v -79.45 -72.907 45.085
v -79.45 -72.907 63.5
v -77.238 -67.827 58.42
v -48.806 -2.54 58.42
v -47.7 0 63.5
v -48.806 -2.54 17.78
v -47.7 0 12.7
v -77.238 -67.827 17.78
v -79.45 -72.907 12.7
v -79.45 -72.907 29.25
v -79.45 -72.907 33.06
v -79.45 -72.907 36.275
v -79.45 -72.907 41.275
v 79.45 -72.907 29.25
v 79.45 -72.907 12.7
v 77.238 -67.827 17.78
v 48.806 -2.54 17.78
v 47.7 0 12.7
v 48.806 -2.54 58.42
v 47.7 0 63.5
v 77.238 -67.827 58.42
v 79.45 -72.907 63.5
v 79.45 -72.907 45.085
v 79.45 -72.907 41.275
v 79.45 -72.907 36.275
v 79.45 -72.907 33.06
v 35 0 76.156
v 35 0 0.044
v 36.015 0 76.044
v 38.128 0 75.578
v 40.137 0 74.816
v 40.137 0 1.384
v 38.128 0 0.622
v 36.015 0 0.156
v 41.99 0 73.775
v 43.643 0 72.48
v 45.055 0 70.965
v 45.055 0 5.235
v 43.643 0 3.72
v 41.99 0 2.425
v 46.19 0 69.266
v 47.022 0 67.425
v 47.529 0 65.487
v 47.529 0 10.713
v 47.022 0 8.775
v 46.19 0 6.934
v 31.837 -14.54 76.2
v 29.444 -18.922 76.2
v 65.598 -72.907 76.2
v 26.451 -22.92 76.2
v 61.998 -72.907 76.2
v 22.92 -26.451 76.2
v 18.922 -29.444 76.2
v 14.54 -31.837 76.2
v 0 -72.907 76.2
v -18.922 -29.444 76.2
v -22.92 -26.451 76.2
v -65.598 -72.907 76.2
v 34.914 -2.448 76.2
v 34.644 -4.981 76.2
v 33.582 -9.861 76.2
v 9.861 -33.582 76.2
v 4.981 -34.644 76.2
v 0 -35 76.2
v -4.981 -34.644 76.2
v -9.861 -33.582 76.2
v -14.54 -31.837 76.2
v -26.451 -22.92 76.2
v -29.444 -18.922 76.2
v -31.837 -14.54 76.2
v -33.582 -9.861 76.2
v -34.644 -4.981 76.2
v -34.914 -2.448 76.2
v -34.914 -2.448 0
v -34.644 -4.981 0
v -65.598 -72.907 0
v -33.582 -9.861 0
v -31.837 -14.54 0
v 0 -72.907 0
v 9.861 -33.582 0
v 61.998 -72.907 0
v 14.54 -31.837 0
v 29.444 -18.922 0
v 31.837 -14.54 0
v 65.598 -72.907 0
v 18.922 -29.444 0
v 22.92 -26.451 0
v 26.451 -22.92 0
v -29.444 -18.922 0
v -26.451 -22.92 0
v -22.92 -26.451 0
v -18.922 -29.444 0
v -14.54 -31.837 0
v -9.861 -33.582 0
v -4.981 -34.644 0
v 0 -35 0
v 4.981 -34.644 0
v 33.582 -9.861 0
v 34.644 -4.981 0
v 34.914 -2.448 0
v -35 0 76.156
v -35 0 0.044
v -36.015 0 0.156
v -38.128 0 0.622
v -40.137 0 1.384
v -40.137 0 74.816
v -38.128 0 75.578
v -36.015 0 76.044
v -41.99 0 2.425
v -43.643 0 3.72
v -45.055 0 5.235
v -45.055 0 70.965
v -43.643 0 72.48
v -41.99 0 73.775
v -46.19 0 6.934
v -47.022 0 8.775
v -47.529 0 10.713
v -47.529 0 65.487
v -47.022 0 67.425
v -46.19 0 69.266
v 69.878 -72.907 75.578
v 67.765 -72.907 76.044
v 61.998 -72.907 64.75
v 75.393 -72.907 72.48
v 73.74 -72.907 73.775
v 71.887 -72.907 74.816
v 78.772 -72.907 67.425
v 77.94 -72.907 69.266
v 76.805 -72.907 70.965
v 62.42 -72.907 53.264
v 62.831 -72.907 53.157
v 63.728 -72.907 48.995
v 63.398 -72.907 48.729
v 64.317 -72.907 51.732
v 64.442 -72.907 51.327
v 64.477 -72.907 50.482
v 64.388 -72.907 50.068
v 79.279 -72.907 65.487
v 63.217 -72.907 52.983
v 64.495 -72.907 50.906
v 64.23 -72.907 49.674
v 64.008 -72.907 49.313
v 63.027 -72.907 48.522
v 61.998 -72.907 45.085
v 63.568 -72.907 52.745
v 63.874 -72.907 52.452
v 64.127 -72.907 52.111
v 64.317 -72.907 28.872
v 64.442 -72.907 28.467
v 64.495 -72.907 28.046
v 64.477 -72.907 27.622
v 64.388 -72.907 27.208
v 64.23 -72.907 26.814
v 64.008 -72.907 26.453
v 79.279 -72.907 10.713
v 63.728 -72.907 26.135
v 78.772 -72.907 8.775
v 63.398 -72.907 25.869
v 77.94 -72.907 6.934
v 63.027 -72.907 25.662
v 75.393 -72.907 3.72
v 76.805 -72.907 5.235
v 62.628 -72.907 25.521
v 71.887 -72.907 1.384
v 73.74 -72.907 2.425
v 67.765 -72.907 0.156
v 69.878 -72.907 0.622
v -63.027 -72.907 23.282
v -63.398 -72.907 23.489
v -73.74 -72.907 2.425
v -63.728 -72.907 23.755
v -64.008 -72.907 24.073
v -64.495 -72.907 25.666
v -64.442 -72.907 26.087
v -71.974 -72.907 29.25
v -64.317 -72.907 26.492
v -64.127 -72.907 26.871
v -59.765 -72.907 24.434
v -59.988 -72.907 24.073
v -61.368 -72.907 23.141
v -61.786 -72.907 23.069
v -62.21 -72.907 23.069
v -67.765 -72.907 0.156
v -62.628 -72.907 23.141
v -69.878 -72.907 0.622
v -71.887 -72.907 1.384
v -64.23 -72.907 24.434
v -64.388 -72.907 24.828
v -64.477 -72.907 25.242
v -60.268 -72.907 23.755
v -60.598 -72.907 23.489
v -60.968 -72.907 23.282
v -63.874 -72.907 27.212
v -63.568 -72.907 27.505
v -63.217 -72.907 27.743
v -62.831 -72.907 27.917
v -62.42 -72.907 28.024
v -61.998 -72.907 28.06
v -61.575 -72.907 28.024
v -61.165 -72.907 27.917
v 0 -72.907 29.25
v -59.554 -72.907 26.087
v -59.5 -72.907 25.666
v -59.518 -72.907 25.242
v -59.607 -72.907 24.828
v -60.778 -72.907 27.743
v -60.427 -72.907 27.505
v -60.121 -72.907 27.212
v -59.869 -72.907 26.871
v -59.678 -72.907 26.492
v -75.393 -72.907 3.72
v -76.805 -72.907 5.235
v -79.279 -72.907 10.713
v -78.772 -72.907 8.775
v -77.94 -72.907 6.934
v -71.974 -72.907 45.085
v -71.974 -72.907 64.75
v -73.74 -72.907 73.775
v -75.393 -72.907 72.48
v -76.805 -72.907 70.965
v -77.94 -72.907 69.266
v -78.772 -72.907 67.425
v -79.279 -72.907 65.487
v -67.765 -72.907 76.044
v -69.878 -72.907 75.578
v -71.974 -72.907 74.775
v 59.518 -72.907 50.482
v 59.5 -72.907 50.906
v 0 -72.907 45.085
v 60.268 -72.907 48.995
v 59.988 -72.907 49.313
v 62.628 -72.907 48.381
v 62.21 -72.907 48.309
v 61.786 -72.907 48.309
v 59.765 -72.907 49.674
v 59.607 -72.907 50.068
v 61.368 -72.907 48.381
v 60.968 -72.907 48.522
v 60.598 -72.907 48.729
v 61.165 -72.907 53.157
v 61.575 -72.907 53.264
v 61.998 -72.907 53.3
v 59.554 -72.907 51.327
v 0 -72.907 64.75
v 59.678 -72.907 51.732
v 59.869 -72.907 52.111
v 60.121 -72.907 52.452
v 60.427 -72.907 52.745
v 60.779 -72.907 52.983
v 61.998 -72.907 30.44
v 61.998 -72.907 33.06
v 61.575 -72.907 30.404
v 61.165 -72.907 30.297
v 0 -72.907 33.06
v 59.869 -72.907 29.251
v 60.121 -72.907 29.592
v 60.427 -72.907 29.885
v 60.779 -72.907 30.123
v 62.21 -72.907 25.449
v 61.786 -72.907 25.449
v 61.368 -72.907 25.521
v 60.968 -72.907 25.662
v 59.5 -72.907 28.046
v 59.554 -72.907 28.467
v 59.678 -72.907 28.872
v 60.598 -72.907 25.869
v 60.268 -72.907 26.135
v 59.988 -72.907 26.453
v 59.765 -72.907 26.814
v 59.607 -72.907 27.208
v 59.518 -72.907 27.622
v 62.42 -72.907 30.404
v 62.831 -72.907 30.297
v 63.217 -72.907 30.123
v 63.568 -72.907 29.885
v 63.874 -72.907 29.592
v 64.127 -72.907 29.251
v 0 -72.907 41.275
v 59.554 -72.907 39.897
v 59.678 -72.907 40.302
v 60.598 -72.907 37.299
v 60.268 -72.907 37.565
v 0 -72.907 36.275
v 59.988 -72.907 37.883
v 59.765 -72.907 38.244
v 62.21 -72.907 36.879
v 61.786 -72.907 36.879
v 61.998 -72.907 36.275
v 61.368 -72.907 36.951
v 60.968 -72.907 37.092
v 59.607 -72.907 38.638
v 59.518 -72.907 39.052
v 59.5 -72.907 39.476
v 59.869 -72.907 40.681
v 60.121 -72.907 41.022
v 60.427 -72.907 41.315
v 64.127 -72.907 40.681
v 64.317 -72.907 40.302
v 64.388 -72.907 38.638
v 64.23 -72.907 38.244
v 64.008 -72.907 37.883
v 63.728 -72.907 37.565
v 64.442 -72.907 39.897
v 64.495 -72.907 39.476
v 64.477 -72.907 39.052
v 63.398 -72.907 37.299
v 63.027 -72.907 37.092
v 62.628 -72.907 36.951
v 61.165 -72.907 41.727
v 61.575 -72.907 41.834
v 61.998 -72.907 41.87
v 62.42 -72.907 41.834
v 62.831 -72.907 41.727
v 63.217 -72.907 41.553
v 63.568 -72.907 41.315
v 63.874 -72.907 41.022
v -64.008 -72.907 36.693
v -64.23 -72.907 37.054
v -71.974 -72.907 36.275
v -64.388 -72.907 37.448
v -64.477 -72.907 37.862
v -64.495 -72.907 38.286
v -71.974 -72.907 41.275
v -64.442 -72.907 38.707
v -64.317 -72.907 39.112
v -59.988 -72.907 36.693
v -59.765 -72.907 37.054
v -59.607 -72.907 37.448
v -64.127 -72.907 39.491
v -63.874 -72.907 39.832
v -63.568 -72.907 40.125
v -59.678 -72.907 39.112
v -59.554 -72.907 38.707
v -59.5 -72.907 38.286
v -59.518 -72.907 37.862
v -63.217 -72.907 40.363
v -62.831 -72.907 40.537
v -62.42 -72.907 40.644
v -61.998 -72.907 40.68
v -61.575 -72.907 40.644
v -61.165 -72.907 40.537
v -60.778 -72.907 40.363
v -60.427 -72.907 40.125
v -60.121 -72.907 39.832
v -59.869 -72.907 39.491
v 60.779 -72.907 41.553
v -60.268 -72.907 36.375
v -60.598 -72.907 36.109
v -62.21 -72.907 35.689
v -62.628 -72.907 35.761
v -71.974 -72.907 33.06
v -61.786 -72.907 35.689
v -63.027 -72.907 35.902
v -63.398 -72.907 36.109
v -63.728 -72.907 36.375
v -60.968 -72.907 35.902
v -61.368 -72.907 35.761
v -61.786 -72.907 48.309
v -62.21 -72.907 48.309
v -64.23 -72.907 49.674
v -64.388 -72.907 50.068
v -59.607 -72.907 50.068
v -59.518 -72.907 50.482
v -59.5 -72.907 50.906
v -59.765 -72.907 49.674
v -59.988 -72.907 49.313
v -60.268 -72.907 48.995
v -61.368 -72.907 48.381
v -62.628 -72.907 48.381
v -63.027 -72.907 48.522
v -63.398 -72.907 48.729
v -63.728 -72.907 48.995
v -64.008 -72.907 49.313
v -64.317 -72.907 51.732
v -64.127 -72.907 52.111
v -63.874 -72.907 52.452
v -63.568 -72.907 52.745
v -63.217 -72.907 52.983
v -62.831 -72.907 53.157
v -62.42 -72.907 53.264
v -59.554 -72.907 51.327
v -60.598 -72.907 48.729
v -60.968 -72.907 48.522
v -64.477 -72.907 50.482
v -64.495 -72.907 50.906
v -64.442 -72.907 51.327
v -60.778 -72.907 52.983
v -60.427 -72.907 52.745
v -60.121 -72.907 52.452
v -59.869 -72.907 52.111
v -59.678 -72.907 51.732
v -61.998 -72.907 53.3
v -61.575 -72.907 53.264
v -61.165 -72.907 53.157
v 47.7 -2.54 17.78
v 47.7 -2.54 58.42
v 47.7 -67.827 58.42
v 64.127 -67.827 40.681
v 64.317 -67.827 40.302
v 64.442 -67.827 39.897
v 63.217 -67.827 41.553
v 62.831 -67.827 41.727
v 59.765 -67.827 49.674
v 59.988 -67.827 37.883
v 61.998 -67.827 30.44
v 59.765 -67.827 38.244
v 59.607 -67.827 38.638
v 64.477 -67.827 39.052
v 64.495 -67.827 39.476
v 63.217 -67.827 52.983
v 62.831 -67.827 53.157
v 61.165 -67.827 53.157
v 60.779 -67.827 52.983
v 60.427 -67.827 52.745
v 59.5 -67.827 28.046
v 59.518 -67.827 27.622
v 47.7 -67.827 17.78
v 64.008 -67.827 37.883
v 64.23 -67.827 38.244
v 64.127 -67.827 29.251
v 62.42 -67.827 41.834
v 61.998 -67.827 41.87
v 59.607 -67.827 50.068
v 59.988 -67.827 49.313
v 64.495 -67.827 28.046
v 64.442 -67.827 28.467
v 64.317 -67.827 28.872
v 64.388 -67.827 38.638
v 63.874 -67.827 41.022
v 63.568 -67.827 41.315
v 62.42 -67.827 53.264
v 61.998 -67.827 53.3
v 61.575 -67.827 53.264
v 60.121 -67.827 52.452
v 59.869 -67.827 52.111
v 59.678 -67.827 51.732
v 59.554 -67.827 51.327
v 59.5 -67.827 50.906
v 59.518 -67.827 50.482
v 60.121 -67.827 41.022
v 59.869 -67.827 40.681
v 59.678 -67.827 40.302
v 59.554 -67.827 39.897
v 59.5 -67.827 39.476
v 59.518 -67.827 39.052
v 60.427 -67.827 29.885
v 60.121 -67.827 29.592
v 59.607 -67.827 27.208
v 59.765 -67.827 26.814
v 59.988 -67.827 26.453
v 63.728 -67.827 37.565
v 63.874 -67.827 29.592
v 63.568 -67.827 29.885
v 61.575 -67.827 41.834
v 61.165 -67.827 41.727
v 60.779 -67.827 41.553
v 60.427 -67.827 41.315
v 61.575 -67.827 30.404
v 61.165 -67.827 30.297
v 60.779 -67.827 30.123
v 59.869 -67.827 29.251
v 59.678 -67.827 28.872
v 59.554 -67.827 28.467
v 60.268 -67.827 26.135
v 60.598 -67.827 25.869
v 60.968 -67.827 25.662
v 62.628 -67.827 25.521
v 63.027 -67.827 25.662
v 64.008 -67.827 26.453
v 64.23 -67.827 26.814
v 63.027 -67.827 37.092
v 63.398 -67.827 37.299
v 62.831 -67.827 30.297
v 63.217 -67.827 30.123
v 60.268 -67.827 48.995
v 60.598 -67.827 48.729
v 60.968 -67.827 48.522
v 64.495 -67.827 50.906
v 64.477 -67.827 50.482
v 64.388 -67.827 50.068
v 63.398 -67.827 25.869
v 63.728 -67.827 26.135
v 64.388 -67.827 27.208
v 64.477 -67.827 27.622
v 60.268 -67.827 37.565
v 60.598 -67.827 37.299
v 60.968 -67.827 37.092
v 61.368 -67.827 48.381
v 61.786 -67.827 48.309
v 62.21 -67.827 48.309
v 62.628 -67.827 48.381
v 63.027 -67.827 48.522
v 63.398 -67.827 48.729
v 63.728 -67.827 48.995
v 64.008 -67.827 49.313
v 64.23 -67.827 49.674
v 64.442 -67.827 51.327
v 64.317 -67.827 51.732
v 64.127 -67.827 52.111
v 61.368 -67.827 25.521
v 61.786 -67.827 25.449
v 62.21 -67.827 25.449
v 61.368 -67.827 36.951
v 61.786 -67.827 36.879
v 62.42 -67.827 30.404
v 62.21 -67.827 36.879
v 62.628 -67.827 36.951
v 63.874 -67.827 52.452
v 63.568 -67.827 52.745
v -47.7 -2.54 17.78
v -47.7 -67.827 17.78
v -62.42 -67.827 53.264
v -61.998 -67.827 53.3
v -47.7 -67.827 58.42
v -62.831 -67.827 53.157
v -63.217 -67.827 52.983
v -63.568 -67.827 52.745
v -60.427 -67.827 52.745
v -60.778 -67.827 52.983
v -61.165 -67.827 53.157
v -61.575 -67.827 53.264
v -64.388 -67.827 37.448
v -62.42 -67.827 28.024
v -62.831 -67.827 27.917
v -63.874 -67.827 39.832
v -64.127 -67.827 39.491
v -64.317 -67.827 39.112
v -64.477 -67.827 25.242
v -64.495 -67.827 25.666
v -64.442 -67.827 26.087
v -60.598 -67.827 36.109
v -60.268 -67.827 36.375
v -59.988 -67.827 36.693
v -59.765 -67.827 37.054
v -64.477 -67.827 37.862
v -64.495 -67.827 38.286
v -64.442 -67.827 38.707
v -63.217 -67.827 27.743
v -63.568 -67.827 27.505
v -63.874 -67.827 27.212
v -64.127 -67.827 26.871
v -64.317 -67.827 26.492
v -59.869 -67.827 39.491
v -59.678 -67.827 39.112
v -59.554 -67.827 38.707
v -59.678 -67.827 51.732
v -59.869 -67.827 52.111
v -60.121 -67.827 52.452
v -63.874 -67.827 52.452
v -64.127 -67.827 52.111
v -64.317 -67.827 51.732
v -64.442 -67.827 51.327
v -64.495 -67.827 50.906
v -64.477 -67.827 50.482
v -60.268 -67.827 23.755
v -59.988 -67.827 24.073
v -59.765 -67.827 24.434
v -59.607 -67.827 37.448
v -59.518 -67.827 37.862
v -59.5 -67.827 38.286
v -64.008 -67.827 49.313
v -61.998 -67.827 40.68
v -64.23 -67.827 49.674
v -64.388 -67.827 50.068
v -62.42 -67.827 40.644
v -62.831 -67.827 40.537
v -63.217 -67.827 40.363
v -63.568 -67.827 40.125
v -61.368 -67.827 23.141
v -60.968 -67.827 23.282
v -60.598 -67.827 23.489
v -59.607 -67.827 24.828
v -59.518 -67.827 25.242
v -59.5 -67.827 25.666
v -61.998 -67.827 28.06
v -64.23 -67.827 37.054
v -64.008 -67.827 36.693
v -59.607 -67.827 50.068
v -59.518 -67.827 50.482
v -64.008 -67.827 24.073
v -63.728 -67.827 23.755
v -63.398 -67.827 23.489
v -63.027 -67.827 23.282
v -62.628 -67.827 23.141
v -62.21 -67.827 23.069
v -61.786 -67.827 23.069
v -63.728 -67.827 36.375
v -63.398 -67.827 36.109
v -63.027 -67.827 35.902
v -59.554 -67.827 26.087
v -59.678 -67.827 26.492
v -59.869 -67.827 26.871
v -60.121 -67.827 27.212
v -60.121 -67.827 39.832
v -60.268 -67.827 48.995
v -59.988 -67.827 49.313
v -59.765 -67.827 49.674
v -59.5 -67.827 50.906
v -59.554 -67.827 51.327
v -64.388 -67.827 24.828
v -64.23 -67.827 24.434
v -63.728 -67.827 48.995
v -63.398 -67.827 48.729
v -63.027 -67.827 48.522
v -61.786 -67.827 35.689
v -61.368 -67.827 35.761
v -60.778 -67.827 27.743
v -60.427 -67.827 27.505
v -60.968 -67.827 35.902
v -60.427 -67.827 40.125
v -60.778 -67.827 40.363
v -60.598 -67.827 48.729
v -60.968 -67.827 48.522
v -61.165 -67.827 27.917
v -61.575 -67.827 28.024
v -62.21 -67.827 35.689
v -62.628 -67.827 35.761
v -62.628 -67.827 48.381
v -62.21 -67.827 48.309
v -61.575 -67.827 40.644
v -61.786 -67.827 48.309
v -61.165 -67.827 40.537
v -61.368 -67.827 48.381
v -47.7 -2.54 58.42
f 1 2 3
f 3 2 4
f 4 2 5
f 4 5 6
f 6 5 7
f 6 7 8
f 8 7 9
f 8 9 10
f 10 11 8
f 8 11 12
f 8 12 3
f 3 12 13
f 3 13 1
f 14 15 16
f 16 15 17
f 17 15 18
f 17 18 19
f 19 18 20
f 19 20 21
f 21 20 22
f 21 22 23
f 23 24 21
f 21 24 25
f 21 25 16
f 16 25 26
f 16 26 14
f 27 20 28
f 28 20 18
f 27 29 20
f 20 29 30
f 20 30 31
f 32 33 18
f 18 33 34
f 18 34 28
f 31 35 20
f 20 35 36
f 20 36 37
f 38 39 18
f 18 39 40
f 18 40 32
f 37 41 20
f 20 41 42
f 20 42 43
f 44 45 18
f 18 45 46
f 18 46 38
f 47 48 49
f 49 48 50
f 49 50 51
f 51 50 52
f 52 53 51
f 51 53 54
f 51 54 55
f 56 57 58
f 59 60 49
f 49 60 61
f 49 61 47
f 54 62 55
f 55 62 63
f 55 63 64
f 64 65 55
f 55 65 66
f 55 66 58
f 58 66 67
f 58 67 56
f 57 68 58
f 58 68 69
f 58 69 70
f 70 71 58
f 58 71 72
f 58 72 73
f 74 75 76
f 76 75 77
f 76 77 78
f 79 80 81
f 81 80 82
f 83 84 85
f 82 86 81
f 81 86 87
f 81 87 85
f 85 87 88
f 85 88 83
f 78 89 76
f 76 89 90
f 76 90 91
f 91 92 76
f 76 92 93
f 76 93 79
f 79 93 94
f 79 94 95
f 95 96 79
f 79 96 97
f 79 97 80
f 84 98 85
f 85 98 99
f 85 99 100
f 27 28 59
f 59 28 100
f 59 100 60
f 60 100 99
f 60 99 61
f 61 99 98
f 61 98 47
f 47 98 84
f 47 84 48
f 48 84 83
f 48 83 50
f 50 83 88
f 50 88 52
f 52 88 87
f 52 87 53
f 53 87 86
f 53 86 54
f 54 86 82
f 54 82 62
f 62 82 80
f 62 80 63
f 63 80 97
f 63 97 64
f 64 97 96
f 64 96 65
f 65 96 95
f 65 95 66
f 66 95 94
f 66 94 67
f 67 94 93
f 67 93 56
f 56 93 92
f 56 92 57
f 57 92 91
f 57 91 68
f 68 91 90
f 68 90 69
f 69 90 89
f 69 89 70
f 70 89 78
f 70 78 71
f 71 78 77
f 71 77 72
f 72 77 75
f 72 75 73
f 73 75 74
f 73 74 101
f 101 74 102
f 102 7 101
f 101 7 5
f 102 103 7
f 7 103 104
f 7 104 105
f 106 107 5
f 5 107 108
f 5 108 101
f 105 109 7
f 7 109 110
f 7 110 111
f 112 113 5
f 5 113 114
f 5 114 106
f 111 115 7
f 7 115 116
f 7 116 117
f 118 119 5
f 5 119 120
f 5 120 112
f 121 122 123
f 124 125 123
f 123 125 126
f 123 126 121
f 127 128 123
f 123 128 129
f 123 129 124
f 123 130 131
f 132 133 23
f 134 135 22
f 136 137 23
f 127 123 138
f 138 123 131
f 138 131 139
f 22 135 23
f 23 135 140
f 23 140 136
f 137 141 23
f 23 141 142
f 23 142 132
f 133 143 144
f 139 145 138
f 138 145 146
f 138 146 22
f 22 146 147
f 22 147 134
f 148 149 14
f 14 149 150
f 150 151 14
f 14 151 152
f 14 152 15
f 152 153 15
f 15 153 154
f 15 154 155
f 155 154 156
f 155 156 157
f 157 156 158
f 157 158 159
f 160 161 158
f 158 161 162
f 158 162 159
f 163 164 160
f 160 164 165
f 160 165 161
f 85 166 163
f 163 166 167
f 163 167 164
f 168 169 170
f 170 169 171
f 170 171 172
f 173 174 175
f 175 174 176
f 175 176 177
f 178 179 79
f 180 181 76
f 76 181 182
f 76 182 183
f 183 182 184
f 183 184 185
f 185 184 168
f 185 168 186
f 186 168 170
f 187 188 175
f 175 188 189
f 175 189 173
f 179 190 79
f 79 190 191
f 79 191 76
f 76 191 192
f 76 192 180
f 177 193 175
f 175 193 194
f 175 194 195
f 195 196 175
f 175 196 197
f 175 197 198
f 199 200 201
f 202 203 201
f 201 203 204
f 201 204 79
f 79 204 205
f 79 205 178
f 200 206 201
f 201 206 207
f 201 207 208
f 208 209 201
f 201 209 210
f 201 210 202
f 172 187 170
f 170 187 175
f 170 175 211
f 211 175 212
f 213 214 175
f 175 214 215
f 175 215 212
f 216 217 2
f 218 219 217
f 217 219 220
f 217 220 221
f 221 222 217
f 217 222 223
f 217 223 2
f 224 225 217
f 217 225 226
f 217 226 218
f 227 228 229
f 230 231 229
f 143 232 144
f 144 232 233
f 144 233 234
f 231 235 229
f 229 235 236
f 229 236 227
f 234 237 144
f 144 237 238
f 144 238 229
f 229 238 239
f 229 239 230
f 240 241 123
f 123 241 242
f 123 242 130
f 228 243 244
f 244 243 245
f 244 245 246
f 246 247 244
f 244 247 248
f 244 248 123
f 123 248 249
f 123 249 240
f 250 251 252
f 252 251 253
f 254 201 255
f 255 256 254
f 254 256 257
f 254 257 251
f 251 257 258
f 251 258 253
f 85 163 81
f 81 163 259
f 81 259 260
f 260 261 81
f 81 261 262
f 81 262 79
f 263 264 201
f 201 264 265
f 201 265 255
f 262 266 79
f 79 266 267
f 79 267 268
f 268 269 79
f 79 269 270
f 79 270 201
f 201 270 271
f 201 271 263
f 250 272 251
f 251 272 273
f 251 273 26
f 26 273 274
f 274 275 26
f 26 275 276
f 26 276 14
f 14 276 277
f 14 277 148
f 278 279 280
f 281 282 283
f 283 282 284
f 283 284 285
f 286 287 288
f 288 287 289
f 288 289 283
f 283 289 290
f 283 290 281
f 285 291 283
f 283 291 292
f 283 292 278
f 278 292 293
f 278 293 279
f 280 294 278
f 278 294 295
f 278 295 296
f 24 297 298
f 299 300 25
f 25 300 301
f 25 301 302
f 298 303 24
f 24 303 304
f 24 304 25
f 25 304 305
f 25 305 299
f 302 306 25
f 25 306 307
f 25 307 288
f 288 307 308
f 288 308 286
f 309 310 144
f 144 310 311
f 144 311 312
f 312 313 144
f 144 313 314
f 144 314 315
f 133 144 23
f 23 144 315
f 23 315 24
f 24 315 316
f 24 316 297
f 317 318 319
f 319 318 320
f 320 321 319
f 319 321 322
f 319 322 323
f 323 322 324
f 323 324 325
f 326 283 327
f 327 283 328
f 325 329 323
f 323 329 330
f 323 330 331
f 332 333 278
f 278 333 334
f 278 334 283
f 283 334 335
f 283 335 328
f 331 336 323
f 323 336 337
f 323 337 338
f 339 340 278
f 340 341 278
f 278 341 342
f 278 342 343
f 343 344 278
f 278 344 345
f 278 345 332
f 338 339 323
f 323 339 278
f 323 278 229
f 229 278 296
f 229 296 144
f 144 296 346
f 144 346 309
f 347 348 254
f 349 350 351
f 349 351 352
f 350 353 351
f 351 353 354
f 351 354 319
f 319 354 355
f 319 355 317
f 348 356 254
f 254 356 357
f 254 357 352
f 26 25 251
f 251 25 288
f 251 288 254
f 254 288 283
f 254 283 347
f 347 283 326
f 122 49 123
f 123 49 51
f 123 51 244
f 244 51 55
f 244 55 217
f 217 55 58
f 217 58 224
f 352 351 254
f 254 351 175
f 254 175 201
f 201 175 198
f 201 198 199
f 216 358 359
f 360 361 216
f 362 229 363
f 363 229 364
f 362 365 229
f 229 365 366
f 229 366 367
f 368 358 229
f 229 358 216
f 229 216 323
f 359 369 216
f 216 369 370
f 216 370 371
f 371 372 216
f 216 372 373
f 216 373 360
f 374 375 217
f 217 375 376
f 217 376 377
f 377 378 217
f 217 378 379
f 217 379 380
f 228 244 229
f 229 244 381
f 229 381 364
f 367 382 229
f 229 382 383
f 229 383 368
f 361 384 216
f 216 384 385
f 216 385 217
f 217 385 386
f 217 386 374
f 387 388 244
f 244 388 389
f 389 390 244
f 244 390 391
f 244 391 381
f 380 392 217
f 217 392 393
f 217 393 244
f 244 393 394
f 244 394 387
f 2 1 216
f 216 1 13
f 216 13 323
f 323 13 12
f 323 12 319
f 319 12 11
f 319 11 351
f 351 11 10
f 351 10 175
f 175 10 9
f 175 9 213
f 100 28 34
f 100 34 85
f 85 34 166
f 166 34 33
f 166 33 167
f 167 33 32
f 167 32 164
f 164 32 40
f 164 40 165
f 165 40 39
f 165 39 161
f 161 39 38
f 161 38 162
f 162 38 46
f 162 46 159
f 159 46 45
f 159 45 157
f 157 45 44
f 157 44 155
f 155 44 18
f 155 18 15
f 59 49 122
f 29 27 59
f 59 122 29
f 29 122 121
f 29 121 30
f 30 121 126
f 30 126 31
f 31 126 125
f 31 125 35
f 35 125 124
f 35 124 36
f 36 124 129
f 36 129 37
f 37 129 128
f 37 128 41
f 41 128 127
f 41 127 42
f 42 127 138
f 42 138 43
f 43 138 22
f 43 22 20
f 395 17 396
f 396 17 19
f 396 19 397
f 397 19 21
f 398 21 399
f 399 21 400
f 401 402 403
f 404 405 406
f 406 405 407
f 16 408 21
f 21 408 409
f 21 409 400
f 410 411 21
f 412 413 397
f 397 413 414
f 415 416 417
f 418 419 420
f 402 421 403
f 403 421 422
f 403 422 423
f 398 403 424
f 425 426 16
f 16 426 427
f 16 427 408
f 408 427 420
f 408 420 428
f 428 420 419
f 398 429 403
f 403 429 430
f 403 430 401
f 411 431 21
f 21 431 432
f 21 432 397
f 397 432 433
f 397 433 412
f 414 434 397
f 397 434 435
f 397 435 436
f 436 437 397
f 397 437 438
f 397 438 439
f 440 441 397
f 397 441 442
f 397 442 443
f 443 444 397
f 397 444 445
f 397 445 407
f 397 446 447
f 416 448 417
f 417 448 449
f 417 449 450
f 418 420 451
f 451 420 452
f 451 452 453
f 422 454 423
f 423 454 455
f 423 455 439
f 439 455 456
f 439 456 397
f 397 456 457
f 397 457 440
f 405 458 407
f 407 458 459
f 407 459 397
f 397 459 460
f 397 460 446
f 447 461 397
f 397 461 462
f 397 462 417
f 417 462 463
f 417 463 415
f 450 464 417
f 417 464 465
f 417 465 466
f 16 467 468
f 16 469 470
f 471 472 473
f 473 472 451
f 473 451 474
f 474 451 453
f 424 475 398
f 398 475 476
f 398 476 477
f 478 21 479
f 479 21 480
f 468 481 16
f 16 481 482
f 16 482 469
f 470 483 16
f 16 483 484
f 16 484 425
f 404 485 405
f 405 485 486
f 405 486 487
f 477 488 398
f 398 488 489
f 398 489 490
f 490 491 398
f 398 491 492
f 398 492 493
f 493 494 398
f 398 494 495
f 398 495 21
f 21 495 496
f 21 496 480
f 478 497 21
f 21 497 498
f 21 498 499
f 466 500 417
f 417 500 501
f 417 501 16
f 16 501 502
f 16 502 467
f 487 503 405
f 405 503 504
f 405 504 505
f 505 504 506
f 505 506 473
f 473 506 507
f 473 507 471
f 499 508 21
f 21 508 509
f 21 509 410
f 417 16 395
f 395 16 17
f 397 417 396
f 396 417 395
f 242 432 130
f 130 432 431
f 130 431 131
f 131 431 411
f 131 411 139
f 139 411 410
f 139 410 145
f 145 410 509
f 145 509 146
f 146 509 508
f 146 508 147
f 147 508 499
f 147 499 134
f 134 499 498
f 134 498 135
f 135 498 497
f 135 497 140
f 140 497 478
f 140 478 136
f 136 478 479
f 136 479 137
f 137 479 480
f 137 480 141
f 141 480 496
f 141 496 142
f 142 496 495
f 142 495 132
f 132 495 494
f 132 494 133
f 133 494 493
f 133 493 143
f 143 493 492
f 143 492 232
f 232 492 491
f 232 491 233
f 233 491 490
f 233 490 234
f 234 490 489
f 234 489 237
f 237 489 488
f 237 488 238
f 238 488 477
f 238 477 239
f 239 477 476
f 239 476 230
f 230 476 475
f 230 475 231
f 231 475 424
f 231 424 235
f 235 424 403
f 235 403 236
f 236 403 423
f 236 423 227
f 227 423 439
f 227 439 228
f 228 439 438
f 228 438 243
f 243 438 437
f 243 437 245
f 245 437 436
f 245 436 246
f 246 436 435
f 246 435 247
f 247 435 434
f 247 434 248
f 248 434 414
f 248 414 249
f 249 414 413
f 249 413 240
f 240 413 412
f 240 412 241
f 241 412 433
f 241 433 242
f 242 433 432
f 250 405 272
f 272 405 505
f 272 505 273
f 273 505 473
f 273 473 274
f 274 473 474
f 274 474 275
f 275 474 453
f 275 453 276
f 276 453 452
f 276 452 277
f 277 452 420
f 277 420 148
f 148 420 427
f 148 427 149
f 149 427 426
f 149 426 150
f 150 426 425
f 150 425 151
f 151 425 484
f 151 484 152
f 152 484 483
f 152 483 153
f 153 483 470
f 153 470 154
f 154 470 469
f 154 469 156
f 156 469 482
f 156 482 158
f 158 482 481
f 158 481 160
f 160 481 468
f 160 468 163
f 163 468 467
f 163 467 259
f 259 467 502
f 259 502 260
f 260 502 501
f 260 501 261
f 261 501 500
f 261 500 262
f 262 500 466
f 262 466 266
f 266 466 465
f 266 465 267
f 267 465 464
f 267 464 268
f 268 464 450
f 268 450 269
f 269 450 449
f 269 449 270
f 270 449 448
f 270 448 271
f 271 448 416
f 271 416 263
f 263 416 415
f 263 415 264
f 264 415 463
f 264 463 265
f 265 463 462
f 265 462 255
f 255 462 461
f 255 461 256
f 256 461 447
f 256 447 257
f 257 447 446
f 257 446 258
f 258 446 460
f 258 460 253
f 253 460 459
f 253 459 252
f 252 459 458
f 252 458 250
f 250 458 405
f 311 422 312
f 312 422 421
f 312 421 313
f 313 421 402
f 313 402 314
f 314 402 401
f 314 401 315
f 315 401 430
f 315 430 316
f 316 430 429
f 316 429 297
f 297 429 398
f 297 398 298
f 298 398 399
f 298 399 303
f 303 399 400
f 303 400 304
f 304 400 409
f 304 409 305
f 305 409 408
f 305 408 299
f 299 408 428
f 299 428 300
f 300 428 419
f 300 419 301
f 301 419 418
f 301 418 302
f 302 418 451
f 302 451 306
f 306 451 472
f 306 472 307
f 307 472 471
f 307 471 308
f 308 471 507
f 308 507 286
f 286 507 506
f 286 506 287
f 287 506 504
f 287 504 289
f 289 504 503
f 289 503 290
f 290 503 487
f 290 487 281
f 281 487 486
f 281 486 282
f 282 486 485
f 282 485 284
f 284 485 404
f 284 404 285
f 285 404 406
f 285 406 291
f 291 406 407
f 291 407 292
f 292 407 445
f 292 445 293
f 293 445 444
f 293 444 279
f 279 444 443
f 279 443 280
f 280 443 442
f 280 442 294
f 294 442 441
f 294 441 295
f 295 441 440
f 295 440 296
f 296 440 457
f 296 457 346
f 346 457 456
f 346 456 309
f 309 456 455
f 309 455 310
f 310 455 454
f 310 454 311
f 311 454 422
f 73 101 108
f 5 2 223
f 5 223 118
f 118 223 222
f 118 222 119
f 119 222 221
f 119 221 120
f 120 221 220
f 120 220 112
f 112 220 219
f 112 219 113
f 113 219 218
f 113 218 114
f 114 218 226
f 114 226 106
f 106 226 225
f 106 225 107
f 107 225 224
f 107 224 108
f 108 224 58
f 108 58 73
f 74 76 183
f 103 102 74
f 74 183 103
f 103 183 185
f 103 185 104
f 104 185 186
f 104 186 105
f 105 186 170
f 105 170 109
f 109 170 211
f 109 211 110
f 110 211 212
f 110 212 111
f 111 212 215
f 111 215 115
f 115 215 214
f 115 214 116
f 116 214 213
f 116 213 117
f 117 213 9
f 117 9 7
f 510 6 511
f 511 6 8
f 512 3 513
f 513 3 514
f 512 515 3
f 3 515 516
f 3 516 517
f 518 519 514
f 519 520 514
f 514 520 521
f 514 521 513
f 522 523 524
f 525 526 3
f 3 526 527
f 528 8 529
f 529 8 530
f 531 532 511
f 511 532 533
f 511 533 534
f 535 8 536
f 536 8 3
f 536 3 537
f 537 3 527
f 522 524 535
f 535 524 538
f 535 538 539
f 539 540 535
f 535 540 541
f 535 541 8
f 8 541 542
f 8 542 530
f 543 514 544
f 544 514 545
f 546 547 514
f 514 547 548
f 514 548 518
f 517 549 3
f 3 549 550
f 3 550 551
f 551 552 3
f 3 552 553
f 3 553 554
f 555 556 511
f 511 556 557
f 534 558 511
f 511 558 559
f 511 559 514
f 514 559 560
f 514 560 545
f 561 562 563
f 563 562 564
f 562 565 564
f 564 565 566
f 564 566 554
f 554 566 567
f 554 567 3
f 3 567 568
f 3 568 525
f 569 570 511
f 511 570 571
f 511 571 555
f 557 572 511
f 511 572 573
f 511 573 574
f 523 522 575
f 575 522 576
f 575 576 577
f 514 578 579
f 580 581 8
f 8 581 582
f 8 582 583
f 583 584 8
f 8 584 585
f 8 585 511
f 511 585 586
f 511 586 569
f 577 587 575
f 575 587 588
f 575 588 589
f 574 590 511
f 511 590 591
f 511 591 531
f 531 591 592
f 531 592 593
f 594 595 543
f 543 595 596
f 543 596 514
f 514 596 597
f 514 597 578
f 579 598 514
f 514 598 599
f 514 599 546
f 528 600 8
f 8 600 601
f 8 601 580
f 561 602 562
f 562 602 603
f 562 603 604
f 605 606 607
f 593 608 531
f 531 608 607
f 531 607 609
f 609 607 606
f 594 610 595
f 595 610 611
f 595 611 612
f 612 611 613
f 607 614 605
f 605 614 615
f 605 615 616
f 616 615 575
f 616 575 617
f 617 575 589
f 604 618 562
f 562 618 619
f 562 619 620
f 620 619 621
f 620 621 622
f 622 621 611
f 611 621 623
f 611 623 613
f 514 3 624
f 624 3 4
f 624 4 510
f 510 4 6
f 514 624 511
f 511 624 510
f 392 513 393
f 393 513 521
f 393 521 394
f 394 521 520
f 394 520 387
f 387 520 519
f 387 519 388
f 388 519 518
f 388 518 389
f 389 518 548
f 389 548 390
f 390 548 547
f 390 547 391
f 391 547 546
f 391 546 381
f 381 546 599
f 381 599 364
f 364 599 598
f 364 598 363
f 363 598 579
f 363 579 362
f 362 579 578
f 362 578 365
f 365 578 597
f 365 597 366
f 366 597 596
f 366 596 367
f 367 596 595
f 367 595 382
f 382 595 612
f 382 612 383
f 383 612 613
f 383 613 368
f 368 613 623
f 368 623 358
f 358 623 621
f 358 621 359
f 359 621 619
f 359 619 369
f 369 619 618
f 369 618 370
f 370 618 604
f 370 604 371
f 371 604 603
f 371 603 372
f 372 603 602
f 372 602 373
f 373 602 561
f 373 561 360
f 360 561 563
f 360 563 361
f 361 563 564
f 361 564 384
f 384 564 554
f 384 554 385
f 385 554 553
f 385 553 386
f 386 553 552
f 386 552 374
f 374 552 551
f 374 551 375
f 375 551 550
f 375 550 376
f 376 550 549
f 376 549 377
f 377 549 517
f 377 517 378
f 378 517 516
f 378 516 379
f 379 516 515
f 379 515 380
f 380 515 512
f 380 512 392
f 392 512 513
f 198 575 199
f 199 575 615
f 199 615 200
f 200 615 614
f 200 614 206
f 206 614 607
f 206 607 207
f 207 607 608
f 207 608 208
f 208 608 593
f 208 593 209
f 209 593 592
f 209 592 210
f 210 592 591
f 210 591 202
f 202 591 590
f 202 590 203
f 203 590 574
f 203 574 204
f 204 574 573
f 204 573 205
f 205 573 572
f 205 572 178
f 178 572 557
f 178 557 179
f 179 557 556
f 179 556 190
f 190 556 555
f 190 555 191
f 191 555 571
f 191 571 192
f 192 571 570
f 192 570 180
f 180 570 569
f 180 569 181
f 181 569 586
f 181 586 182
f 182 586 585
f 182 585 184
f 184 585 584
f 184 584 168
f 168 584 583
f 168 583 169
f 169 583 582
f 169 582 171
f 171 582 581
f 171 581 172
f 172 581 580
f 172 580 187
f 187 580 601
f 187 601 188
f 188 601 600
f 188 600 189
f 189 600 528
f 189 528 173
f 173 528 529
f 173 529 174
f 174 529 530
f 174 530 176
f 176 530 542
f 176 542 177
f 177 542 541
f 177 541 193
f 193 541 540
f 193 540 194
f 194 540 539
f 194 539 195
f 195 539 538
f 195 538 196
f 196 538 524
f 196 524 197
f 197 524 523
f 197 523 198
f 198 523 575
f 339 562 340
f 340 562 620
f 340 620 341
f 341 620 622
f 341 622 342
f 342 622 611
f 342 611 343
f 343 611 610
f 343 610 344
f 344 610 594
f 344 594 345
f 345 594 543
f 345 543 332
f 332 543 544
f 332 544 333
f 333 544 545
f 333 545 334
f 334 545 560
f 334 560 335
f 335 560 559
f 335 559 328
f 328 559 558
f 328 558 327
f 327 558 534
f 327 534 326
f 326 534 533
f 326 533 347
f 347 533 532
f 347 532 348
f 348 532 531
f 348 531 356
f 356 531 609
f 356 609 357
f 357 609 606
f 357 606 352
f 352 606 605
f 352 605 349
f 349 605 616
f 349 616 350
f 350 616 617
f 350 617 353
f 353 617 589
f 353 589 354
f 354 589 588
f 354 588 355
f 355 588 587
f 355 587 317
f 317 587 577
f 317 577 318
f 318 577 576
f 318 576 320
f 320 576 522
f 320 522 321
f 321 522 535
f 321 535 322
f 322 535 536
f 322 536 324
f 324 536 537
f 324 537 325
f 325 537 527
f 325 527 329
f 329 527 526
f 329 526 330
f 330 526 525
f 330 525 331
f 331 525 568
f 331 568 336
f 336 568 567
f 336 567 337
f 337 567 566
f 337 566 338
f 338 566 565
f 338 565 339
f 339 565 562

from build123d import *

# Parameters (mm, degrees)
SKETCH1_R               = 47.7
SKETCH1_R_2             = 35
BOSS_EXTRUDE1_DEPTH     = 76.2
CUT_EXTRUDE1_DEPTH      = 1
CUT_EXTRUDE1_DEPTH_BACK = 77.2
BOSS_EXTRUDE2_DEPTH     = 76.2
BOSS_EXTRUDE4_DEPTH     = 76.2
FILLET2_R               = 12.7
SKETCH6_W               = 40.64
SKETCH6_H               = 65.287260423
CUT_EXTRUDE3_DEPTH      = 101.6
CUT_EXTRUDE4_START      = -6.0800001
SKETCH7_R               = 2.5
CUT_EXTRUDE4_DEPTH      = 74.907260623
LPATTERN1_COUNT         = 3
LPATTERN1_PITCH         = 11.43
BOSS_EXTRUDE5_DEPTH     = 76.2
FILLET3_R               = 12.7
SKETCH8_W               = 40.64
SKETCH8_H               = 65.287260423
CUT_EXTRUDE5_DEPTH      = 76.2
CUT_EXTRUDE6_START      = -6.0800001
SKETCH9_R               = 2.5
CUT_EXTRUDE6_DEPTH      = 74.907260623
LPATTERN2_COUNT         = 3
LPATTERN2_PITCH         = 12.62


with BuildPart() as part:
    # Sketch1 → Boss-Extrude1 (new body)
    with BuildSketch(Plane.XY):
        Circle(SKETCH1_R)
        Circle(SKETCH1_R_2, mode=Mode.SUBTRACT)
    extrude(amount=BOSS_EXTRUDE1_DEPTH)

    # Sketch2 → Cut-Extrude1 (cut, two sides)
    with BuildSketch(Plane.XY.offset(76.2)) as cut_extrude1_sk:
        Polygon((-285.983619069, 0), (-50.977699953, 0), (54.190264056, 0), (289.196183172, 0), (289.196183172, 470.011838232), (-285.983619069, 470.011838232), align=None)
    extrude(amount=CUT_EXTRUDE1_DEPTH, mode=Mode.SUBTRACT)
    extrude(cut_extrude1_sk.sketch, amount=-CUT_EXTRUDE1_DEPTH_BACK, mode=Mode.SUBTRACT)

    # Sketch3 → Boss-Extrude2 (add)
    with BuildSketch(Plane(origin=(0, 0, 0), x_dir=(-1, 0, 0), z_dir=(0, 0, -1))):
        with BuildLine():
            ThreePointArc((-4.283714166, -47.507260423), (-35.210958278, -32.178850463), (-47.7, 0))
            Line((-47.7, 0), (-47.7, -47.507260423))
            Line((-47.7, -47.507260423), (-4.283714166, -47.507260423))
        make_face()
        with BuildLine():
            Line((47.7, -47.507260423), (47.7, 0))
            ThreePointArc((47.7, 0), (35.210958278, -32.178850463), (4.283714166, -47.507260423))
            Line((4.283714166, -47.507260423), (47.7, -47.507260423))
        make_face()
        with BuildLine():
            Line((-4.283714166, -47.507260423), (-47.7, -47.507260423))
            Line((-47.7, -47.507260423), (-47.7, -72.907260423))
            Line((-47.7, -72.907260423), (47.7, -72.907260423))
            Line((47.7, -72.907260423), (47.7, -47.507260423))
            Line((47.7, -47.507260423), (4.283714166, -47.507260423))
            ThreePointArc((4.283714166, -47.507260423), (0, -47.7), (-4.283714166, -47.507260423))
        make_face()
    extrude(amount=-BOSS_EXTRUDE2_DEPTH)

    # Sketch5 → Boss-Extrude4 (add)
    with BuildSketch(Plane(origin=(0, 0, 0), x_dir=(-1, 0, 0), z_dir=(0, 0, -1))):
        Polygon((-47.7, 0), (-47.7, -72.907260423), (-79.45, -72.907260423), align=None)
    extrude(amount=-BOSS_EXTRUDE4_DEPTH)

    # Fillet2
    fillet2_edges = [part.edges().sort_by_distance(p)[0] for p in [
        (63.575, -36.453630212, 0),
        (63.575, -36.453630212, 76.2),
    ]]
    fillet(fillet2_edges, radius=FILLET2_R)

    # Sketch6 → Cut-Extrude3 (cut)
    with BuildSketch(Plane(origin=(47.7, 0, 0), x_dir=(0, 0, -1), z_dir=(1, 0, 0))):
        with Locations((-38.1, -35.183630212)):
            Rectangle(SKETCH6_W, SKETCH6_H)
    extrude(amount=CUT_EXTRUDE3_DEPTH, mode=Mode.SUBTRACT)

    # Sketch7 → Cut-Extrude4 (cut)
    with BuildSketch(Plane(origin=(0, -67.827260423, 0), x_dir=(1, 0, 0), z_dir=(0, 1, 0)).offset(CUT_EXTRUDE4_START)):
        with Locations((61.997737475, -50.8)):
            Circle(SKETCH7_R)
    cut_extrude4 = extrude(amount=CUT_EXTRUDE4_DEPTH, mode=Mode.SUBTRACT)

    # LPattern1: Cut-Extrude4 ×3
    with Locations(*[(0, 0, -i * LPATTERN1_PITCH) for i in range(1, LPATTERN1_COUNT)]):
        add(cut_extrude4, mode=Mode.SUBTRACT)

    # Sketch4 → Boss-Extrude5 (add)
    with BuildSketch(Plane(origin=(0, 0, 0), x_dir=(-1, 0, 0), z_dir=(0, 0, -1))):
        Polygon((47.7, 0), (47.7, -72.907260423), (79.45, -72.907260423), align=None)
    extrude(amount=-BOSS_EXTRUDE5_DEPTH)

    # Fillet3
    fillet3_edges = [part.edges().sort_by_distance(p)[0] for p in [
        (-63.575, -36.453630212, 0),
        (-63.575, -36.453630212, 76.2),
    ]]
    fillet(fillet3_edges, radius=FILLET3_R)

    # Sketch8 → Cut-Extrude5 (cut)
    with BuildSketch(Plane.ZY.offset(47.7)):
        with Locations((38.1, -35.183630212)):
            Rectangle(SKETCH8_W, SKETCH8_H)
    extrude(amount=CUT_EXTRUDE5_DEPTH, mode=Mode.SUBTRACT)

    # Sketch9 → Cut-Extrude6 (cut)
    with BuildSketch(Plane(origin=(0, -67.827260423, 0), x_dir=(1, 0, 0), z_dir=(0, 1, 0)).offset(CUT_EXTRUDE6_START)):
        with Locations((-61.997737475, -50.8)):
            Circle(SKETCH9_R)
    cut_extrude6 = extrude(amount=CUT_EXTRUDE6_DEPTH, mode=Mode.SUBTRACT)

    # LPattern2: Cut-Extrude6 ×3
    with Locations(*[(0, 0, -i * LPATTERN2_PITCH) for i in range(1, LPATTERN2_COUNT)]):
        add(cut_extrude6, mode=Mode.SUBTRACT)


solid = part.part
